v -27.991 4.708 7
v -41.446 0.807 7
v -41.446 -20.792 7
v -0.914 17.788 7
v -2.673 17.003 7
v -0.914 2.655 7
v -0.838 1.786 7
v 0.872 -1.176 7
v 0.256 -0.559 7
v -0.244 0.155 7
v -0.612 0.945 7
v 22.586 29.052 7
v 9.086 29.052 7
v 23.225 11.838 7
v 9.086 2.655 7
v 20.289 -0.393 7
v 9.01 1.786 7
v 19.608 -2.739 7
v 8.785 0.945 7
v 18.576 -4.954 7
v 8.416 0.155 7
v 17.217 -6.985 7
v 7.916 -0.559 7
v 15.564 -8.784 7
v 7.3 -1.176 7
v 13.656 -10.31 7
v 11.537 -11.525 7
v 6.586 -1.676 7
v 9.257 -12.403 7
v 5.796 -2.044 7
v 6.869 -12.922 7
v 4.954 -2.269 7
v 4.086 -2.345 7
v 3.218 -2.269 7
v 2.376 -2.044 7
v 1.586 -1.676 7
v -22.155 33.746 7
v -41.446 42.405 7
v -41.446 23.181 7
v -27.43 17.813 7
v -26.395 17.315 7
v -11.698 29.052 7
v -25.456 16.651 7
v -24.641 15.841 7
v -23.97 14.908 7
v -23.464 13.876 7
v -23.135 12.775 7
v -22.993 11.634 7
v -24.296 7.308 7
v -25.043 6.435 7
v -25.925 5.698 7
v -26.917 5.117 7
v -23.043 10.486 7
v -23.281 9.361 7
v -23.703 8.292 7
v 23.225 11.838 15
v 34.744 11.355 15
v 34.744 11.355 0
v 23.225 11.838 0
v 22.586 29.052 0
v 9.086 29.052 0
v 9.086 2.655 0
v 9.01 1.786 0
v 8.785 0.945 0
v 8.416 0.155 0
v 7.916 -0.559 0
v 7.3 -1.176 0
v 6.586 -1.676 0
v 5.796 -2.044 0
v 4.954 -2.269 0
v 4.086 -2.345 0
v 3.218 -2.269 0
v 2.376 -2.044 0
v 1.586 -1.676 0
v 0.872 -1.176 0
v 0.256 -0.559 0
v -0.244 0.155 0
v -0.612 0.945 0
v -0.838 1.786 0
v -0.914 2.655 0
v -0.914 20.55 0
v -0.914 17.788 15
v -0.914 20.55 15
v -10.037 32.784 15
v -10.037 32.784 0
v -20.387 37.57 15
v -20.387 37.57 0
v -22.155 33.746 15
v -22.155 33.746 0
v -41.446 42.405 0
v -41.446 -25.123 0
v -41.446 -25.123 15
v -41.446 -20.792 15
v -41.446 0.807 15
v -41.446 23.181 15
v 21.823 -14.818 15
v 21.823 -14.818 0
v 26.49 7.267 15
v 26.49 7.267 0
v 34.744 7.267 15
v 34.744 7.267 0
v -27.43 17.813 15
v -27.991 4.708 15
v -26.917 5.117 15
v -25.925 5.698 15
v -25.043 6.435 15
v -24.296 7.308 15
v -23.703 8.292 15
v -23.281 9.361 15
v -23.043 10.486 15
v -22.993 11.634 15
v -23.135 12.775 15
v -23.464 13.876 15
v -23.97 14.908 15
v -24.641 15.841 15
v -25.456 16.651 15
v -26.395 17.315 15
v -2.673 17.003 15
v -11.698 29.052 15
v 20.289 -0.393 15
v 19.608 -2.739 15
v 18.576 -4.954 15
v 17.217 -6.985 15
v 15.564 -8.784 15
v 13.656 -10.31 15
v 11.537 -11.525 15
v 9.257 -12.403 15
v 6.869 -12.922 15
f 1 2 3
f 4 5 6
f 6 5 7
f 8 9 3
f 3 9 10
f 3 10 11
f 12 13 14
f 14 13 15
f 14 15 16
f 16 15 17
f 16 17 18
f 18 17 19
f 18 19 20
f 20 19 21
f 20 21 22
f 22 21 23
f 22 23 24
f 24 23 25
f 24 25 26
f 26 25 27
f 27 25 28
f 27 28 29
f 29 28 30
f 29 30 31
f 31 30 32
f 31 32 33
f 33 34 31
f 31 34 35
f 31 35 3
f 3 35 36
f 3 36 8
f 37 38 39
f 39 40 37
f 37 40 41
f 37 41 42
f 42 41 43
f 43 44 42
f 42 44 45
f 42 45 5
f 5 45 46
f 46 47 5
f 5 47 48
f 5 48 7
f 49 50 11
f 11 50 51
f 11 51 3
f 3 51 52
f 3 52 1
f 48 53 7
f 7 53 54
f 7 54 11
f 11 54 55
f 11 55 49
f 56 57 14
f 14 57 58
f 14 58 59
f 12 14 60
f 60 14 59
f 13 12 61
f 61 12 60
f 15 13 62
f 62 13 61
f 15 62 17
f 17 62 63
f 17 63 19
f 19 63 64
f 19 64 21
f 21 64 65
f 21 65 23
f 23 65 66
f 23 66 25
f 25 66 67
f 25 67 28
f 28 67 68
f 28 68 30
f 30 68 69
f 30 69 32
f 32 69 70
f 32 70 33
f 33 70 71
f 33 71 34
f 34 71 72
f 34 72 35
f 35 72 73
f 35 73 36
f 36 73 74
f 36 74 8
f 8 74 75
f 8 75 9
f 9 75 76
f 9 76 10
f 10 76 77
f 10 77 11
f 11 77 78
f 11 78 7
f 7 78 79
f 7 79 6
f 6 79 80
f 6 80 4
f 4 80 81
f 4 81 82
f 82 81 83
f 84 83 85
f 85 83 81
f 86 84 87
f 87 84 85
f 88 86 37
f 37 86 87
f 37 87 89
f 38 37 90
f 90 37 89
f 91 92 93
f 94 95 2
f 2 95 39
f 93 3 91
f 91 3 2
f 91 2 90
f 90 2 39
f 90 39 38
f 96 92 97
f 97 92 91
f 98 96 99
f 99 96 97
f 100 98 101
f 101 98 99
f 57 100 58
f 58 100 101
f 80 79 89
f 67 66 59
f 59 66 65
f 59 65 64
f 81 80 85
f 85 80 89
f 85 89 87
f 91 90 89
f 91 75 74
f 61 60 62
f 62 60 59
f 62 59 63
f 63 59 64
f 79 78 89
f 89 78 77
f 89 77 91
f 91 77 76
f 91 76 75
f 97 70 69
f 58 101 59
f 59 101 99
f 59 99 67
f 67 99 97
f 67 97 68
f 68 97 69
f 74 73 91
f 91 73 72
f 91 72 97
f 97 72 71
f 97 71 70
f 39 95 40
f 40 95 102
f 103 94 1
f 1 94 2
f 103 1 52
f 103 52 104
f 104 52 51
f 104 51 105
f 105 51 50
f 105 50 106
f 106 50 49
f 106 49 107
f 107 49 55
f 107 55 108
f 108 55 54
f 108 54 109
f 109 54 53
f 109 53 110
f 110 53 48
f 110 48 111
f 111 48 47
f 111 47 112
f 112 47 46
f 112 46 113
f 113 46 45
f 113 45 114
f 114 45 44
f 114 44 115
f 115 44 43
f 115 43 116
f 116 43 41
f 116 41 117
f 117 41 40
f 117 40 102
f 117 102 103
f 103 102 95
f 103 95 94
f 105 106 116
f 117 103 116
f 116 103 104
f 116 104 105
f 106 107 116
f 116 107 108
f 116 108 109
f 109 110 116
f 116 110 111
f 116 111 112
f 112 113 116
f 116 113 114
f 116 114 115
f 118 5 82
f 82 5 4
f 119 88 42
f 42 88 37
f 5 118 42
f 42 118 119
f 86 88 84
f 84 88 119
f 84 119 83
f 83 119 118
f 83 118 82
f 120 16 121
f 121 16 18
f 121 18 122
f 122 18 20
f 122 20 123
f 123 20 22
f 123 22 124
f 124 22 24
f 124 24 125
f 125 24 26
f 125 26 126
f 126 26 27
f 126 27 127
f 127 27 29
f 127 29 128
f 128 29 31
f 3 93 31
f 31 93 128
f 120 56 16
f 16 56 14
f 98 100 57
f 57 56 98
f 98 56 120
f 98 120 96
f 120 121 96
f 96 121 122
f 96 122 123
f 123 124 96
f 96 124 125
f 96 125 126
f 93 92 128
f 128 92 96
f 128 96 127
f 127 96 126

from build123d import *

# Parameters (mm, degrees)
BOSS_EXTRUDE2_DEPTH = 7
BOSS_EXTRUDE3_DEPTH = 15


with BuildPart() as part:
    # Sketch1 → Boss-Extrude2 (new body)
    with BuildSketch(Plane.XY):
        with BuildLine():
            Line((-41.446212302, -25.123400981), (21.822672825, -14.817519442))
            Line((21.822672825, -14.817519442), (26.489801196, 7.266810726))
            Line((26.489801196, 7.266810726), (34.744303123, 7.266810726))
            Line((34.744303123, 7.266810726), (34.744303123, 11.354641566))
            Line((34.744303123, 11.354641566), (23.2245968, 11.838054321))
            Line((23.2245968, 11.838054321), (22.586170837, 29.052034329))
            Line((22.586170837, 29.052034329), (9.086170837, 29.052034329))
            Line((9.086170837, 29.052034329), (9.086170837, 2.654622308))
            ThreePointArc((9.086170837, 2.654622308), (4.086170837, -2.345377692), (-0.913829163, 2.654622308))
            Line((-0.913829163, 2.654622308), (-0.913829163, 20.550462038))
            Line((-0.913829163, 20.550462038), (-10.036820206, 32.783811613))
            Line((-10.036820206, 32.783811613), (-20.38656022, 37.570023616))
            Line((-20.38656022, 37.570023616), (-22.155090004, 33.745741812))
            Line((-22.155090004, 33.745741812), (-41.446212302, 42.4049295))
            Line((-41.446212302, 42.4049295), (-41.446212302, -25.123400981))
        make_face()
    extrude(amount=BOSS_EXTRUDE2_DEPTH)

    # Sketch1<7> → Boss-Extrude3 (add)
    with BuildSketch(Plane.XY):
        with BuildLine():
            Line((-41.446212302, -20.792174742), (-41.446212302, -25.123400981))
            Line((-41.446212302, -25.123400981), (21.822672825, -14.817519442))
            Line((21.822672825, -14.817519442), (26.489801196, 7.266810726))
            Line((26.489801196, 7.266810726), (34.744303123, 7.266810726))
            Line((34.744303123, 7.266810726), (34.744303123, 11.354641566))
            Line((34.744303123, 11.354641566), (23.2245968, 11.838054321))
            Line((23.2245968, 11.838054321), (20.289273371, -0.393165966))
            ThreePointArc((20.289273371, -0.393165966), (15.564402865, -8.784041973), (6.869125611, -12.922079544))
            Line((6.869125611, -12.922079544), (-41.446212302, -20.792174742))
        make_face()
        with BuildLine():
            Line((-41.446212302, 0.807049614), (-27.991340604, 4.708206285))
            ThreePointArc((-27.991340604, 4.708206285), (-22.99414619, 11.058923492), (-27.430483413, 17.813364482))
            Line((-27.430483413, 17.813364482), (-41.446212302, 23.180975488))
            Line((-41.446212302, 23.180975488), (-41.446212302, 0.807049614))
        make_face()
        with BuildLine():
            Line((-11.698348753, 29.052034329), (-2.67291579, 17.003015737))
            ThreePointArc((-2.67291579, 17.003015737), (-1.805237347, 17.421962776), (-0.913829163, 17.787713989))
            Line((-0.913829163, 17.787713989), (-0.913829163, 20.550462038))
            Line((-0.913829163, 20.550462038), (-10.036820206, 32.783811613))
            Line((-10.036820206, 32.783811613), (-20.38656022, 37.570023616))
            Line((-20.38656022, 37.570023616), (-22.155090004, 33.745741812))
            Line((-22.155090004, 33.745741812), (-11.698348753, 29.052034329))
        make_face()
    extrude(amount=BOSS_EXTRUDE3_DEPTH)


solid = part.part
